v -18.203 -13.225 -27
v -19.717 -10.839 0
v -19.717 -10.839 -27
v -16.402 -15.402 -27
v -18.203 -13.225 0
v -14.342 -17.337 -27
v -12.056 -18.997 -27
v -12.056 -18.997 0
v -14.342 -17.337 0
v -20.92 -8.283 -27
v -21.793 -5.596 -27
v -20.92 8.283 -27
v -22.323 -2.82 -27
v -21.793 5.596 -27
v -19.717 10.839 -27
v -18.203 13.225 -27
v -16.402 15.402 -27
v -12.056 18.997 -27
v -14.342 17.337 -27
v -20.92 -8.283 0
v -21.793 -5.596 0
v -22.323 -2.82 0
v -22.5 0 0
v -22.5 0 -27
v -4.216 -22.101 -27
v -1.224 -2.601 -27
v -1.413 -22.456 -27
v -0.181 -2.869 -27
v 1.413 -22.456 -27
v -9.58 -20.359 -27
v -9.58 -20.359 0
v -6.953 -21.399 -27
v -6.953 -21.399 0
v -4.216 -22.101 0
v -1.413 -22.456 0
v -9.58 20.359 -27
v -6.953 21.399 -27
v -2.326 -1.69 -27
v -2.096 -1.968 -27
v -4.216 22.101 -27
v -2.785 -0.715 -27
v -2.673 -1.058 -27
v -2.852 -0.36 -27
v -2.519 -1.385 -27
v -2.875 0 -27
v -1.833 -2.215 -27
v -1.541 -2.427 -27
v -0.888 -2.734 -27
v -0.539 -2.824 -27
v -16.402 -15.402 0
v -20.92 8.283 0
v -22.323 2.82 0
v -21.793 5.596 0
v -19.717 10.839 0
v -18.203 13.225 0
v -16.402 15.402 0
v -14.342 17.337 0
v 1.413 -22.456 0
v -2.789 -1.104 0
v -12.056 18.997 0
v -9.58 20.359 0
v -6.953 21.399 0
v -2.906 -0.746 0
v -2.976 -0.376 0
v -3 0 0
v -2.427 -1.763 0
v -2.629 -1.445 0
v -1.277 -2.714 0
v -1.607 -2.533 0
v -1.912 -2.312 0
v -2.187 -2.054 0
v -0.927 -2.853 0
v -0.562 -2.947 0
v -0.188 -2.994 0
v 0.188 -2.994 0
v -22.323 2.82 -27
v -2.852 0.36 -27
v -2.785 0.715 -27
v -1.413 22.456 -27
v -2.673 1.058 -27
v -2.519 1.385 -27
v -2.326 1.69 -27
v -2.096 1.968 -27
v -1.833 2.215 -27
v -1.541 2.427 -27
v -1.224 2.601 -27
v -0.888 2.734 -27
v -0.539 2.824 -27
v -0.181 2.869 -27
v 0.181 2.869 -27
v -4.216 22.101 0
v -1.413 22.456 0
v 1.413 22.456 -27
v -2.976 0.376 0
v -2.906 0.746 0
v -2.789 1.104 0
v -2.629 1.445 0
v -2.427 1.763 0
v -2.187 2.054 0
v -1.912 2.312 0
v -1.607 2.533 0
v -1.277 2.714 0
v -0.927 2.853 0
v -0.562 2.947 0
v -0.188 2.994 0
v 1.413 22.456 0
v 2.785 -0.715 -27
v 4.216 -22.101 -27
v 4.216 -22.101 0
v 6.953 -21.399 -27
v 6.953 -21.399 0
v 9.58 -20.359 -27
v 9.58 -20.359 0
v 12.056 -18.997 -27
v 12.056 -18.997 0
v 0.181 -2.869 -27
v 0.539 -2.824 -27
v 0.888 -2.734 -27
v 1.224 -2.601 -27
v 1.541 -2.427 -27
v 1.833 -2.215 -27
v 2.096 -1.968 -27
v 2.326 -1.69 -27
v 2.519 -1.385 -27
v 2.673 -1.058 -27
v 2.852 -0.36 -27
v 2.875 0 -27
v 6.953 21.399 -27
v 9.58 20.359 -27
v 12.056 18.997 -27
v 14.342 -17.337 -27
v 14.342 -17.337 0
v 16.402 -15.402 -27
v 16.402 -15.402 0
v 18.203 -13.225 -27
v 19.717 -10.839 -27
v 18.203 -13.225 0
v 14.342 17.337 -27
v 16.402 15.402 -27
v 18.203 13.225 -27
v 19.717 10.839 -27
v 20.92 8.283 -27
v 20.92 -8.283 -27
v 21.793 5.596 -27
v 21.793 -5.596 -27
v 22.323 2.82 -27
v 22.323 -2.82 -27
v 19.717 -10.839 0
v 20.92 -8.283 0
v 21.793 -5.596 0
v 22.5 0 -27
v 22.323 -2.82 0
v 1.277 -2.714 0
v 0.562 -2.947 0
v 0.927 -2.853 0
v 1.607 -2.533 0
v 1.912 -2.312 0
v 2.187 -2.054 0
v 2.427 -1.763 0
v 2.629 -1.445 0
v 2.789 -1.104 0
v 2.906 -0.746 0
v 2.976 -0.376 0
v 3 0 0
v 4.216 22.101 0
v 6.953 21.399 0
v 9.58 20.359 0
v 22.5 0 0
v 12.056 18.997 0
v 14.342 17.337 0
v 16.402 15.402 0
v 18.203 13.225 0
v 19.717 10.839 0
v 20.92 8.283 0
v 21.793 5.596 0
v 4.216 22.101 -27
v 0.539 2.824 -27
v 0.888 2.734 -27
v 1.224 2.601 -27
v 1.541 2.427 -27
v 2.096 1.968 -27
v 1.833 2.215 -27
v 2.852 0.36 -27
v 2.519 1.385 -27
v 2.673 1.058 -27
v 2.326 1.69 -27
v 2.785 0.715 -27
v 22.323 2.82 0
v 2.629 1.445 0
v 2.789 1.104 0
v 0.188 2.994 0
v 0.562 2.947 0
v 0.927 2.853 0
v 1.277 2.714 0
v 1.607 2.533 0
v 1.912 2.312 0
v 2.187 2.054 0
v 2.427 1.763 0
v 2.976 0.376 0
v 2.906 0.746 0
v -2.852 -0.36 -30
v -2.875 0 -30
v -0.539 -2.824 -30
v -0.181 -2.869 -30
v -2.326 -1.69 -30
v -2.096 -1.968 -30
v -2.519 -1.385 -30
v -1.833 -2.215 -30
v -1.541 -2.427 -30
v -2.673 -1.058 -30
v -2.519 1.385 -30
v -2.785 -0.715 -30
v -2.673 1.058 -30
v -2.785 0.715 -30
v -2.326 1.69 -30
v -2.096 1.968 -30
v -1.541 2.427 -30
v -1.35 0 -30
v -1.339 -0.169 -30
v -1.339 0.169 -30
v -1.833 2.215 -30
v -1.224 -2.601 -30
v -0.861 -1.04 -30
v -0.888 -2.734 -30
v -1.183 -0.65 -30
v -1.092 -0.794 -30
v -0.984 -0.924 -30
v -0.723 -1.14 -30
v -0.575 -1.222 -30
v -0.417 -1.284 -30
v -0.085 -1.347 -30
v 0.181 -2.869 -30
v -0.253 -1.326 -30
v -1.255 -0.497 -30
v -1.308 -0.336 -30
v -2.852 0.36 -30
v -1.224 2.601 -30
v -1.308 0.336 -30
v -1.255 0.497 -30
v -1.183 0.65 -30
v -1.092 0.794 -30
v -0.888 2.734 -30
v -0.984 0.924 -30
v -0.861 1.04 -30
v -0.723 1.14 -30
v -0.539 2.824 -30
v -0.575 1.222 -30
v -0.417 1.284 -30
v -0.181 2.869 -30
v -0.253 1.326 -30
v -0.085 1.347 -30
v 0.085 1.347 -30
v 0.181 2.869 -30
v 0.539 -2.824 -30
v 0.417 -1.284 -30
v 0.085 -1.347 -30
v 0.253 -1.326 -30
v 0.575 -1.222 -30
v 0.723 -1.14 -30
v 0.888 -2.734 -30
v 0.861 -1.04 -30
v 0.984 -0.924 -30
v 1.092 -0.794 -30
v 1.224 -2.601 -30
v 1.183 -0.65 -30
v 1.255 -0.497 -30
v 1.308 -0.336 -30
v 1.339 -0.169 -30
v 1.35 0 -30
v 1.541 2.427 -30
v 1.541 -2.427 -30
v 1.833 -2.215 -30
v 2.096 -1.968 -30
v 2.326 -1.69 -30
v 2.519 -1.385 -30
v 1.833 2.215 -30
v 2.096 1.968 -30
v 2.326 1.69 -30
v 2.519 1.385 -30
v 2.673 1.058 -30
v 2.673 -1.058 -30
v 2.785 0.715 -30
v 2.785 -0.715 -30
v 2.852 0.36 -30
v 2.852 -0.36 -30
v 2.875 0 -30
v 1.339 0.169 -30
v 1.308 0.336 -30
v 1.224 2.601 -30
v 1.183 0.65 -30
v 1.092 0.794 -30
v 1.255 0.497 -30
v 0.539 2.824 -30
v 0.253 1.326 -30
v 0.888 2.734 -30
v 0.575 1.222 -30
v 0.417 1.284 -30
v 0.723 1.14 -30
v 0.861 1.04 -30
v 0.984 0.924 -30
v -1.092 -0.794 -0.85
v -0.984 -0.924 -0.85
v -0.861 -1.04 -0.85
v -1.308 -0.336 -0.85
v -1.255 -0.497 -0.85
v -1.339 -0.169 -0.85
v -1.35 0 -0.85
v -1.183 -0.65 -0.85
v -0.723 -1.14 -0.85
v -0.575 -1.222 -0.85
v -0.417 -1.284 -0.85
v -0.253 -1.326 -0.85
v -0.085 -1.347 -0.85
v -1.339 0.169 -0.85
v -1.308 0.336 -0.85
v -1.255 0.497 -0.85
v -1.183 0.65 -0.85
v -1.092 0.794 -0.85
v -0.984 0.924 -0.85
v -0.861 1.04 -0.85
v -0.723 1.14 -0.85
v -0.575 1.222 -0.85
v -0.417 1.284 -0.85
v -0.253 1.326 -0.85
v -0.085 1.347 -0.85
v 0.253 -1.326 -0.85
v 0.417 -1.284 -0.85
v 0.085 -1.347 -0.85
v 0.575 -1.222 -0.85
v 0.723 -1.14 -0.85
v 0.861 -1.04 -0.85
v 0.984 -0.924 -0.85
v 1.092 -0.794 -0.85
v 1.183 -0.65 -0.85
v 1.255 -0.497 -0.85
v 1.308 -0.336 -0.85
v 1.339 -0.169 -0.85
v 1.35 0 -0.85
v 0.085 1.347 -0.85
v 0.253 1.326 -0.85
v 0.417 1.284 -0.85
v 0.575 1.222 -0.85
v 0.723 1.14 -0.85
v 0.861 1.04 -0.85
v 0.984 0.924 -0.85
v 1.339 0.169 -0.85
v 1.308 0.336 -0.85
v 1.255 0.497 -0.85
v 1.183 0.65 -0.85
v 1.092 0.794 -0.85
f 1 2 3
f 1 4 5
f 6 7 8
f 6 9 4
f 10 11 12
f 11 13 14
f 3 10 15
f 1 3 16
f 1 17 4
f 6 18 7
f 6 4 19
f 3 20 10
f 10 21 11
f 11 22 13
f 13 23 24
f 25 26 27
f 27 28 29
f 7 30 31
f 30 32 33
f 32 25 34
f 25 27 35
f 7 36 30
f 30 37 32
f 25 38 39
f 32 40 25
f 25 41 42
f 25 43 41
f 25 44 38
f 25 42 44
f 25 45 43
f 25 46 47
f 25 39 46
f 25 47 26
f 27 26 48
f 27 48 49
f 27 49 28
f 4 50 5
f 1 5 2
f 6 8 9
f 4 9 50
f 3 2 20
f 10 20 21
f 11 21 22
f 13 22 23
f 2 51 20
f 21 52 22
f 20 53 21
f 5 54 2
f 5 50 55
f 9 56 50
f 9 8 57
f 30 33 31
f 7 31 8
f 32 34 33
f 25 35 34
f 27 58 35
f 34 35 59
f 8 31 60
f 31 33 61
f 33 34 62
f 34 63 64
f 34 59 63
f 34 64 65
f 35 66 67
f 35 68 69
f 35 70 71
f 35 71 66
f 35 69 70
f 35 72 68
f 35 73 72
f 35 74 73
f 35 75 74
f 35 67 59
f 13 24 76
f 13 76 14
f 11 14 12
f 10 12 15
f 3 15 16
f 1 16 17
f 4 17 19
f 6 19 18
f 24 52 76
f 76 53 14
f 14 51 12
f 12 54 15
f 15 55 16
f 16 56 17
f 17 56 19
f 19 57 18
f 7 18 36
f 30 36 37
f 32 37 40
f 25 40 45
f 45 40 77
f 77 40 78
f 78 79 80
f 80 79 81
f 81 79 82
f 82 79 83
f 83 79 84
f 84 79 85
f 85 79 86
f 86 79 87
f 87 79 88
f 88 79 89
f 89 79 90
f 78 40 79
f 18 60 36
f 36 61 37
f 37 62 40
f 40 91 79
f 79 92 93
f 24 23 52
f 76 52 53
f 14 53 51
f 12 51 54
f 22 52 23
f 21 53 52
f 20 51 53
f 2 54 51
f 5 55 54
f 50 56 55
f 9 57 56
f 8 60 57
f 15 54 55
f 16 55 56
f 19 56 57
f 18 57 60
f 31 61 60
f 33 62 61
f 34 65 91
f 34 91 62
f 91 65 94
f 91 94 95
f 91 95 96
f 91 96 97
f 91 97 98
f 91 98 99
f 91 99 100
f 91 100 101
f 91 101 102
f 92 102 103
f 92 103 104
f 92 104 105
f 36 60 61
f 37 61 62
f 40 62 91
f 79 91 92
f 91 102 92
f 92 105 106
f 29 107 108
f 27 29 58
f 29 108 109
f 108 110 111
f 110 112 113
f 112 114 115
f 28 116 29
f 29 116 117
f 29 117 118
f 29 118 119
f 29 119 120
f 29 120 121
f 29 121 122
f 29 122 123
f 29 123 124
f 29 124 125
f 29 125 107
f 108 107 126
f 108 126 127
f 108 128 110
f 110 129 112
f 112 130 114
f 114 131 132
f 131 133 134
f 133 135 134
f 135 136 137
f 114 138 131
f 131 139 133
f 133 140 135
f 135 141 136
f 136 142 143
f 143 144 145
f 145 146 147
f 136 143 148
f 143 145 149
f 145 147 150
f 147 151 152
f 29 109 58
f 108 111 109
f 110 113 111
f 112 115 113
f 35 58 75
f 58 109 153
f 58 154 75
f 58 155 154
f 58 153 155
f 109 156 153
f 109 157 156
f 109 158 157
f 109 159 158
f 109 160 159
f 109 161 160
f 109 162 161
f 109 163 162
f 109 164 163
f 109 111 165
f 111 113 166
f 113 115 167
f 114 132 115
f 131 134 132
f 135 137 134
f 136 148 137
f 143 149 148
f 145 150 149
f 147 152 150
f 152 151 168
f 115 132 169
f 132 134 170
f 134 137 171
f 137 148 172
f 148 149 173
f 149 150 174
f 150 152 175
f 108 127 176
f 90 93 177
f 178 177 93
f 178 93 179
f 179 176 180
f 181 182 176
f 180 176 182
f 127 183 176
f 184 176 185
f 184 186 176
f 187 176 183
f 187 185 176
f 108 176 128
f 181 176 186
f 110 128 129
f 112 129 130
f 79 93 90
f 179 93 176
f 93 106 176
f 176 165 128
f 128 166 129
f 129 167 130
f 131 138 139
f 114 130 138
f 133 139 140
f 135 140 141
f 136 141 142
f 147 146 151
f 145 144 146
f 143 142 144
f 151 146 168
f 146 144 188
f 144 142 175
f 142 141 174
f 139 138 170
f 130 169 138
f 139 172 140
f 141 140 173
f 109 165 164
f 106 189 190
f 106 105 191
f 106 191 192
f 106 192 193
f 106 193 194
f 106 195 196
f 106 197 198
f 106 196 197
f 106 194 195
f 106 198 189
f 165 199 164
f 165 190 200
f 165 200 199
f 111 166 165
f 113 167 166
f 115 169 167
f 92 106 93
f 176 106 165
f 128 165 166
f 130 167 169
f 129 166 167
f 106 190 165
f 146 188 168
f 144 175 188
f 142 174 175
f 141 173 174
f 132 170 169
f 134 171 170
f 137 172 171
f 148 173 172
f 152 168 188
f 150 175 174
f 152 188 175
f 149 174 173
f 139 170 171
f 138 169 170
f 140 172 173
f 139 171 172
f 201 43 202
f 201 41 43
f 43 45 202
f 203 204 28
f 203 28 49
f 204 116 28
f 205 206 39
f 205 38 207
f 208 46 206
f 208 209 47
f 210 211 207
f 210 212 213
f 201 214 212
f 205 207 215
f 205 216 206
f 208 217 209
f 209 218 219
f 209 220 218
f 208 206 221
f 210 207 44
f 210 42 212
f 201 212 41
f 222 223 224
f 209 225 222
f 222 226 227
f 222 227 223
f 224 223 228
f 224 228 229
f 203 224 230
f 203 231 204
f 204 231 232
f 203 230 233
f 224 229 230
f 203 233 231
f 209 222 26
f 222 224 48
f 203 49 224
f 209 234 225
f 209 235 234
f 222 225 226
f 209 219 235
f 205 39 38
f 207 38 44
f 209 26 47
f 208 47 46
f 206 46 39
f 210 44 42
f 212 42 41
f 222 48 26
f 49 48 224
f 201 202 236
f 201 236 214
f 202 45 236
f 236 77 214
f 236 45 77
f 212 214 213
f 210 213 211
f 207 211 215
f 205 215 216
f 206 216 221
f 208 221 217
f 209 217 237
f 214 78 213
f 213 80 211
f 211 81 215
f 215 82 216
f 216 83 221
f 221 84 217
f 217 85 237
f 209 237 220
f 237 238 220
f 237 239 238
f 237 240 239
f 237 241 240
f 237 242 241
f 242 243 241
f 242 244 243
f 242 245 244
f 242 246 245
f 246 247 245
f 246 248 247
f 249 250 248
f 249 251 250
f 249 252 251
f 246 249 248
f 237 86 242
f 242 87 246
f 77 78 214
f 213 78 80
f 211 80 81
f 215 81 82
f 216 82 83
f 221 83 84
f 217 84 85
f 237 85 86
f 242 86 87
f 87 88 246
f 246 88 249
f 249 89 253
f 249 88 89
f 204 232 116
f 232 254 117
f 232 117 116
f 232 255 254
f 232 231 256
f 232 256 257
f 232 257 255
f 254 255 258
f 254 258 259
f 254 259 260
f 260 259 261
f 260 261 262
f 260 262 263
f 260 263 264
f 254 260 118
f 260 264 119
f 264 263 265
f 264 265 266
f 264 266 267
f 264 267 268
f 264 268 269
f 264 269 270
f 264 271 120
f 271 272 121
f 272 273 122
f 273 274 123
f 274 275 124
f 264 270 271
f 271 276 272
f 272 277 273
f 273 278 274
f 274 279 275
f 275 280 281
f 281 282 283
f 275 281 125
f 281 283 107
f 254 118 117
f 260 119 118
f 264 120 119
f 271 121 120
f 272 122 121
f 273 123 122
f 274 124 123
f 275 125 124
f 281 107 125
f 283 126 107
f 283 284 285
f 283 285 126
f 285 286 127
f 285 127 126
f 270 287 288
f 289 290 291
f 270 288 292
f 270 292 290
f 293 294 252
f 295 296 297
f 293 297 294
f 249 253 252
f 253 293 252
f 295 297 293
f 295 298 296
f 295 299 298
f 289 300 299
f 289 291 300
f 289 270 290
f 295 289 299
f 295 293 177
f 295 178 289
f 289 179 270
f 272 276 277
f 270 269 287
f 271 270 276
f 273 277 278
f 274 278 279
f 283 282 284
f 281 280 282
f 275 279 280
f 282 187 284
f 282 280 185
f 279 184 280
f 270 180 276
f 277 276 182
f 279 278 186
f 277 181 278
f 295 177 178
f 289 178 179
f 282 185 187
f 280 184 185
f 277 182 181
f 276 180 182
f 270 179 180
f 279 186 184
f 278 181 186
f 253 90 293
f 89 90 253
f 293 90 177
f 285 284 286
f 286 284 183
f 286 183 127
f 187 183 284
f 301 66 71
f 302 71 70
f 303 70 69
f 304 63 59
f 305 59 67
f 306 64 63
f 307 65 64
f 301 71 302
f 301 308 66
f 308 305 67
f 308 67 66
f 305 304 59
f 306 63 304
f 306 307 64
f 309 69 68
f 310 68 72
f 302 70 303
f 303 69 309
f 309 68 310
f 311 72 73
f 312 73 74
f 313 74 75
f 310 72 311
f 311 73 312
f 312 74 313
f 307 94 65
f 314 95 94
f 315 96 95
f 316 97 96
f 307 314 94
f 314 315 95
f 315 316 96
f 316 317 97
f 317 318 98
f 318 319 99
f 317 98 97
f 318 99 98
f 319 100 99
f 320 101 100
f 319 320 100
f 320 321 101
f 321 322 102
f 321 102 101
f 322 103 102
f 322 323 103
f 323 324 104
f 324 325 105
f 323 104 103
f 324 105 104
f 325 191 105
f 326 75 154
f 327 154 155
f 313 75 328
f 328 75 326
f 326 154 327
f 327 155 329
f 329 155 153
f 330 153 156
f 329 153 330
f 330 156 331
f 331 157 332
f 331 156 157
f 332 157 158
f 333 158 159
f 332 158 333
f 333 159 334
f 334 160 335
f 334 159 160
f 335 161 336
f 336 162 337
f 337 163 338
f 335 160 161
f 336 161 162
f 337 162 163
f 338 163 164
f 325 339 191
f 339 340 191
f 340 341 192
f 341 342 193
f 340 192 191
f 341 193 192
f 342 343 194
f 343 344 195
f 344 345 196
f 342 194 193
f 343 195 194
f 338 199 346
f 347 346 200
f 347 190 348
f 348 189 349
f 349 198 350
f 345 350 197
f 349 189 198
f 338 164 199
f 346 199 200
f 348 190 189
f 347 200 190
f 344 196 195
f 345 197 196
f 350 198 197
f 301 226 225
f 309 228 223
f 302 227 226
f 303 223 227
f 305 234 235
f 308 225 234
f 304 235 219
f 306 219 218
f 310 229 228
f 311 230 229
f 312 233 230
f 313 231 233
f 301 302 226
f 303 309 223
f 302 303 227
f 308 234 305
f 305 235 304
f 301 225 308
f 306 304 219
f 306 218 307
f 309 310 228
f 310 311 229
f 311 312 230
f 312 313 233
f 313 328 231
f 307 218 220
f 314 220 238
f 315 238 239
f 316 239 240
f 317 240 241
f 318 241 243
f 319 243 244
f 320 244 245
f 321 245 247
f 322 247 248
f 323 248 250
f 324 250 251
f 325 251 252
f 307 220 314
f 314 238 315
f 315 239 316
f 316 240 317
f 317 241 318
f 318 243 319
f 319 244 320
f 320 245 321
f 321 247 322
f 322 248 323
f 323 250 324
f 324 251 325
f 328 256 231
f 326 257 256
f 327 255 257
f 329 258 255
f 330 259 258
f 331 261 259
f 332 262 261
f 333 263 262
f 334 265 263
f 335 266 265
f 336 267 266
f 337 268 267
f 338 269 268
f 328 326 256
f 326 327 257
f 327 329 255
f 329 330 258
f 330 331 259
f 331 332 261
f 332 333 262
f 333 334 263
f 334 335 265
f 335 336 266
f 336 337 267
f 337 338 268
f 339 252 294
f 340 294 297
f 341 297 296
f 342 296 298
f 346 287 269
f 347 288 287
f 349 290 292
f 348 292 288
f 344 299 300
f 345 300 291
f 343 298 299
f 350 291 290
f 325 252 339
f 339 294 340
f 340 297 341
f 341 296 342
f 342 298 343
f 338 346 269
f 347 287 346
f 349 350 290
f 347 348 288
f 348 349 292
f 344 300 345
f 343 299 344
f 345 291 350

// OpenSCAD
$fn = 50;


difference() {
	union() {
		translate(v = [0, 0, -27.0000000000]) {
			cylinder(h = 27, r = 22.5000000000);
		}
		#translate(v = [0, 0, -30.0000000000]) {
			cylinder(h = 30, r = 2.8750000000);
		}
	}
	union() {
		translate(v = [0, 0, 0]) {
			rotate(a = [0, 0, 0]) {
				difference() {
					union() {
						translate(v = [0, 0, -30.0000000000]) {
							cylinder(h = 30, r = 1.0000000000);
						}
						translate(v = [0, 0, -0.8500000000]) {
							cylinder(h = 0.8500000000, r1 = 1.3500000000, r2 = 3.0000000000);
						}
						translate(v = [0, 0, -30.0000000000]) {
							cylinder(h = 30, r = 1.3500000000);
						}
						translate(v = [0, 0, -30.0000000000]) {
							cylinder(h = 30, r = 1.0000000000);
						}
					}
					union();
				}
			}
		}
	}
}
